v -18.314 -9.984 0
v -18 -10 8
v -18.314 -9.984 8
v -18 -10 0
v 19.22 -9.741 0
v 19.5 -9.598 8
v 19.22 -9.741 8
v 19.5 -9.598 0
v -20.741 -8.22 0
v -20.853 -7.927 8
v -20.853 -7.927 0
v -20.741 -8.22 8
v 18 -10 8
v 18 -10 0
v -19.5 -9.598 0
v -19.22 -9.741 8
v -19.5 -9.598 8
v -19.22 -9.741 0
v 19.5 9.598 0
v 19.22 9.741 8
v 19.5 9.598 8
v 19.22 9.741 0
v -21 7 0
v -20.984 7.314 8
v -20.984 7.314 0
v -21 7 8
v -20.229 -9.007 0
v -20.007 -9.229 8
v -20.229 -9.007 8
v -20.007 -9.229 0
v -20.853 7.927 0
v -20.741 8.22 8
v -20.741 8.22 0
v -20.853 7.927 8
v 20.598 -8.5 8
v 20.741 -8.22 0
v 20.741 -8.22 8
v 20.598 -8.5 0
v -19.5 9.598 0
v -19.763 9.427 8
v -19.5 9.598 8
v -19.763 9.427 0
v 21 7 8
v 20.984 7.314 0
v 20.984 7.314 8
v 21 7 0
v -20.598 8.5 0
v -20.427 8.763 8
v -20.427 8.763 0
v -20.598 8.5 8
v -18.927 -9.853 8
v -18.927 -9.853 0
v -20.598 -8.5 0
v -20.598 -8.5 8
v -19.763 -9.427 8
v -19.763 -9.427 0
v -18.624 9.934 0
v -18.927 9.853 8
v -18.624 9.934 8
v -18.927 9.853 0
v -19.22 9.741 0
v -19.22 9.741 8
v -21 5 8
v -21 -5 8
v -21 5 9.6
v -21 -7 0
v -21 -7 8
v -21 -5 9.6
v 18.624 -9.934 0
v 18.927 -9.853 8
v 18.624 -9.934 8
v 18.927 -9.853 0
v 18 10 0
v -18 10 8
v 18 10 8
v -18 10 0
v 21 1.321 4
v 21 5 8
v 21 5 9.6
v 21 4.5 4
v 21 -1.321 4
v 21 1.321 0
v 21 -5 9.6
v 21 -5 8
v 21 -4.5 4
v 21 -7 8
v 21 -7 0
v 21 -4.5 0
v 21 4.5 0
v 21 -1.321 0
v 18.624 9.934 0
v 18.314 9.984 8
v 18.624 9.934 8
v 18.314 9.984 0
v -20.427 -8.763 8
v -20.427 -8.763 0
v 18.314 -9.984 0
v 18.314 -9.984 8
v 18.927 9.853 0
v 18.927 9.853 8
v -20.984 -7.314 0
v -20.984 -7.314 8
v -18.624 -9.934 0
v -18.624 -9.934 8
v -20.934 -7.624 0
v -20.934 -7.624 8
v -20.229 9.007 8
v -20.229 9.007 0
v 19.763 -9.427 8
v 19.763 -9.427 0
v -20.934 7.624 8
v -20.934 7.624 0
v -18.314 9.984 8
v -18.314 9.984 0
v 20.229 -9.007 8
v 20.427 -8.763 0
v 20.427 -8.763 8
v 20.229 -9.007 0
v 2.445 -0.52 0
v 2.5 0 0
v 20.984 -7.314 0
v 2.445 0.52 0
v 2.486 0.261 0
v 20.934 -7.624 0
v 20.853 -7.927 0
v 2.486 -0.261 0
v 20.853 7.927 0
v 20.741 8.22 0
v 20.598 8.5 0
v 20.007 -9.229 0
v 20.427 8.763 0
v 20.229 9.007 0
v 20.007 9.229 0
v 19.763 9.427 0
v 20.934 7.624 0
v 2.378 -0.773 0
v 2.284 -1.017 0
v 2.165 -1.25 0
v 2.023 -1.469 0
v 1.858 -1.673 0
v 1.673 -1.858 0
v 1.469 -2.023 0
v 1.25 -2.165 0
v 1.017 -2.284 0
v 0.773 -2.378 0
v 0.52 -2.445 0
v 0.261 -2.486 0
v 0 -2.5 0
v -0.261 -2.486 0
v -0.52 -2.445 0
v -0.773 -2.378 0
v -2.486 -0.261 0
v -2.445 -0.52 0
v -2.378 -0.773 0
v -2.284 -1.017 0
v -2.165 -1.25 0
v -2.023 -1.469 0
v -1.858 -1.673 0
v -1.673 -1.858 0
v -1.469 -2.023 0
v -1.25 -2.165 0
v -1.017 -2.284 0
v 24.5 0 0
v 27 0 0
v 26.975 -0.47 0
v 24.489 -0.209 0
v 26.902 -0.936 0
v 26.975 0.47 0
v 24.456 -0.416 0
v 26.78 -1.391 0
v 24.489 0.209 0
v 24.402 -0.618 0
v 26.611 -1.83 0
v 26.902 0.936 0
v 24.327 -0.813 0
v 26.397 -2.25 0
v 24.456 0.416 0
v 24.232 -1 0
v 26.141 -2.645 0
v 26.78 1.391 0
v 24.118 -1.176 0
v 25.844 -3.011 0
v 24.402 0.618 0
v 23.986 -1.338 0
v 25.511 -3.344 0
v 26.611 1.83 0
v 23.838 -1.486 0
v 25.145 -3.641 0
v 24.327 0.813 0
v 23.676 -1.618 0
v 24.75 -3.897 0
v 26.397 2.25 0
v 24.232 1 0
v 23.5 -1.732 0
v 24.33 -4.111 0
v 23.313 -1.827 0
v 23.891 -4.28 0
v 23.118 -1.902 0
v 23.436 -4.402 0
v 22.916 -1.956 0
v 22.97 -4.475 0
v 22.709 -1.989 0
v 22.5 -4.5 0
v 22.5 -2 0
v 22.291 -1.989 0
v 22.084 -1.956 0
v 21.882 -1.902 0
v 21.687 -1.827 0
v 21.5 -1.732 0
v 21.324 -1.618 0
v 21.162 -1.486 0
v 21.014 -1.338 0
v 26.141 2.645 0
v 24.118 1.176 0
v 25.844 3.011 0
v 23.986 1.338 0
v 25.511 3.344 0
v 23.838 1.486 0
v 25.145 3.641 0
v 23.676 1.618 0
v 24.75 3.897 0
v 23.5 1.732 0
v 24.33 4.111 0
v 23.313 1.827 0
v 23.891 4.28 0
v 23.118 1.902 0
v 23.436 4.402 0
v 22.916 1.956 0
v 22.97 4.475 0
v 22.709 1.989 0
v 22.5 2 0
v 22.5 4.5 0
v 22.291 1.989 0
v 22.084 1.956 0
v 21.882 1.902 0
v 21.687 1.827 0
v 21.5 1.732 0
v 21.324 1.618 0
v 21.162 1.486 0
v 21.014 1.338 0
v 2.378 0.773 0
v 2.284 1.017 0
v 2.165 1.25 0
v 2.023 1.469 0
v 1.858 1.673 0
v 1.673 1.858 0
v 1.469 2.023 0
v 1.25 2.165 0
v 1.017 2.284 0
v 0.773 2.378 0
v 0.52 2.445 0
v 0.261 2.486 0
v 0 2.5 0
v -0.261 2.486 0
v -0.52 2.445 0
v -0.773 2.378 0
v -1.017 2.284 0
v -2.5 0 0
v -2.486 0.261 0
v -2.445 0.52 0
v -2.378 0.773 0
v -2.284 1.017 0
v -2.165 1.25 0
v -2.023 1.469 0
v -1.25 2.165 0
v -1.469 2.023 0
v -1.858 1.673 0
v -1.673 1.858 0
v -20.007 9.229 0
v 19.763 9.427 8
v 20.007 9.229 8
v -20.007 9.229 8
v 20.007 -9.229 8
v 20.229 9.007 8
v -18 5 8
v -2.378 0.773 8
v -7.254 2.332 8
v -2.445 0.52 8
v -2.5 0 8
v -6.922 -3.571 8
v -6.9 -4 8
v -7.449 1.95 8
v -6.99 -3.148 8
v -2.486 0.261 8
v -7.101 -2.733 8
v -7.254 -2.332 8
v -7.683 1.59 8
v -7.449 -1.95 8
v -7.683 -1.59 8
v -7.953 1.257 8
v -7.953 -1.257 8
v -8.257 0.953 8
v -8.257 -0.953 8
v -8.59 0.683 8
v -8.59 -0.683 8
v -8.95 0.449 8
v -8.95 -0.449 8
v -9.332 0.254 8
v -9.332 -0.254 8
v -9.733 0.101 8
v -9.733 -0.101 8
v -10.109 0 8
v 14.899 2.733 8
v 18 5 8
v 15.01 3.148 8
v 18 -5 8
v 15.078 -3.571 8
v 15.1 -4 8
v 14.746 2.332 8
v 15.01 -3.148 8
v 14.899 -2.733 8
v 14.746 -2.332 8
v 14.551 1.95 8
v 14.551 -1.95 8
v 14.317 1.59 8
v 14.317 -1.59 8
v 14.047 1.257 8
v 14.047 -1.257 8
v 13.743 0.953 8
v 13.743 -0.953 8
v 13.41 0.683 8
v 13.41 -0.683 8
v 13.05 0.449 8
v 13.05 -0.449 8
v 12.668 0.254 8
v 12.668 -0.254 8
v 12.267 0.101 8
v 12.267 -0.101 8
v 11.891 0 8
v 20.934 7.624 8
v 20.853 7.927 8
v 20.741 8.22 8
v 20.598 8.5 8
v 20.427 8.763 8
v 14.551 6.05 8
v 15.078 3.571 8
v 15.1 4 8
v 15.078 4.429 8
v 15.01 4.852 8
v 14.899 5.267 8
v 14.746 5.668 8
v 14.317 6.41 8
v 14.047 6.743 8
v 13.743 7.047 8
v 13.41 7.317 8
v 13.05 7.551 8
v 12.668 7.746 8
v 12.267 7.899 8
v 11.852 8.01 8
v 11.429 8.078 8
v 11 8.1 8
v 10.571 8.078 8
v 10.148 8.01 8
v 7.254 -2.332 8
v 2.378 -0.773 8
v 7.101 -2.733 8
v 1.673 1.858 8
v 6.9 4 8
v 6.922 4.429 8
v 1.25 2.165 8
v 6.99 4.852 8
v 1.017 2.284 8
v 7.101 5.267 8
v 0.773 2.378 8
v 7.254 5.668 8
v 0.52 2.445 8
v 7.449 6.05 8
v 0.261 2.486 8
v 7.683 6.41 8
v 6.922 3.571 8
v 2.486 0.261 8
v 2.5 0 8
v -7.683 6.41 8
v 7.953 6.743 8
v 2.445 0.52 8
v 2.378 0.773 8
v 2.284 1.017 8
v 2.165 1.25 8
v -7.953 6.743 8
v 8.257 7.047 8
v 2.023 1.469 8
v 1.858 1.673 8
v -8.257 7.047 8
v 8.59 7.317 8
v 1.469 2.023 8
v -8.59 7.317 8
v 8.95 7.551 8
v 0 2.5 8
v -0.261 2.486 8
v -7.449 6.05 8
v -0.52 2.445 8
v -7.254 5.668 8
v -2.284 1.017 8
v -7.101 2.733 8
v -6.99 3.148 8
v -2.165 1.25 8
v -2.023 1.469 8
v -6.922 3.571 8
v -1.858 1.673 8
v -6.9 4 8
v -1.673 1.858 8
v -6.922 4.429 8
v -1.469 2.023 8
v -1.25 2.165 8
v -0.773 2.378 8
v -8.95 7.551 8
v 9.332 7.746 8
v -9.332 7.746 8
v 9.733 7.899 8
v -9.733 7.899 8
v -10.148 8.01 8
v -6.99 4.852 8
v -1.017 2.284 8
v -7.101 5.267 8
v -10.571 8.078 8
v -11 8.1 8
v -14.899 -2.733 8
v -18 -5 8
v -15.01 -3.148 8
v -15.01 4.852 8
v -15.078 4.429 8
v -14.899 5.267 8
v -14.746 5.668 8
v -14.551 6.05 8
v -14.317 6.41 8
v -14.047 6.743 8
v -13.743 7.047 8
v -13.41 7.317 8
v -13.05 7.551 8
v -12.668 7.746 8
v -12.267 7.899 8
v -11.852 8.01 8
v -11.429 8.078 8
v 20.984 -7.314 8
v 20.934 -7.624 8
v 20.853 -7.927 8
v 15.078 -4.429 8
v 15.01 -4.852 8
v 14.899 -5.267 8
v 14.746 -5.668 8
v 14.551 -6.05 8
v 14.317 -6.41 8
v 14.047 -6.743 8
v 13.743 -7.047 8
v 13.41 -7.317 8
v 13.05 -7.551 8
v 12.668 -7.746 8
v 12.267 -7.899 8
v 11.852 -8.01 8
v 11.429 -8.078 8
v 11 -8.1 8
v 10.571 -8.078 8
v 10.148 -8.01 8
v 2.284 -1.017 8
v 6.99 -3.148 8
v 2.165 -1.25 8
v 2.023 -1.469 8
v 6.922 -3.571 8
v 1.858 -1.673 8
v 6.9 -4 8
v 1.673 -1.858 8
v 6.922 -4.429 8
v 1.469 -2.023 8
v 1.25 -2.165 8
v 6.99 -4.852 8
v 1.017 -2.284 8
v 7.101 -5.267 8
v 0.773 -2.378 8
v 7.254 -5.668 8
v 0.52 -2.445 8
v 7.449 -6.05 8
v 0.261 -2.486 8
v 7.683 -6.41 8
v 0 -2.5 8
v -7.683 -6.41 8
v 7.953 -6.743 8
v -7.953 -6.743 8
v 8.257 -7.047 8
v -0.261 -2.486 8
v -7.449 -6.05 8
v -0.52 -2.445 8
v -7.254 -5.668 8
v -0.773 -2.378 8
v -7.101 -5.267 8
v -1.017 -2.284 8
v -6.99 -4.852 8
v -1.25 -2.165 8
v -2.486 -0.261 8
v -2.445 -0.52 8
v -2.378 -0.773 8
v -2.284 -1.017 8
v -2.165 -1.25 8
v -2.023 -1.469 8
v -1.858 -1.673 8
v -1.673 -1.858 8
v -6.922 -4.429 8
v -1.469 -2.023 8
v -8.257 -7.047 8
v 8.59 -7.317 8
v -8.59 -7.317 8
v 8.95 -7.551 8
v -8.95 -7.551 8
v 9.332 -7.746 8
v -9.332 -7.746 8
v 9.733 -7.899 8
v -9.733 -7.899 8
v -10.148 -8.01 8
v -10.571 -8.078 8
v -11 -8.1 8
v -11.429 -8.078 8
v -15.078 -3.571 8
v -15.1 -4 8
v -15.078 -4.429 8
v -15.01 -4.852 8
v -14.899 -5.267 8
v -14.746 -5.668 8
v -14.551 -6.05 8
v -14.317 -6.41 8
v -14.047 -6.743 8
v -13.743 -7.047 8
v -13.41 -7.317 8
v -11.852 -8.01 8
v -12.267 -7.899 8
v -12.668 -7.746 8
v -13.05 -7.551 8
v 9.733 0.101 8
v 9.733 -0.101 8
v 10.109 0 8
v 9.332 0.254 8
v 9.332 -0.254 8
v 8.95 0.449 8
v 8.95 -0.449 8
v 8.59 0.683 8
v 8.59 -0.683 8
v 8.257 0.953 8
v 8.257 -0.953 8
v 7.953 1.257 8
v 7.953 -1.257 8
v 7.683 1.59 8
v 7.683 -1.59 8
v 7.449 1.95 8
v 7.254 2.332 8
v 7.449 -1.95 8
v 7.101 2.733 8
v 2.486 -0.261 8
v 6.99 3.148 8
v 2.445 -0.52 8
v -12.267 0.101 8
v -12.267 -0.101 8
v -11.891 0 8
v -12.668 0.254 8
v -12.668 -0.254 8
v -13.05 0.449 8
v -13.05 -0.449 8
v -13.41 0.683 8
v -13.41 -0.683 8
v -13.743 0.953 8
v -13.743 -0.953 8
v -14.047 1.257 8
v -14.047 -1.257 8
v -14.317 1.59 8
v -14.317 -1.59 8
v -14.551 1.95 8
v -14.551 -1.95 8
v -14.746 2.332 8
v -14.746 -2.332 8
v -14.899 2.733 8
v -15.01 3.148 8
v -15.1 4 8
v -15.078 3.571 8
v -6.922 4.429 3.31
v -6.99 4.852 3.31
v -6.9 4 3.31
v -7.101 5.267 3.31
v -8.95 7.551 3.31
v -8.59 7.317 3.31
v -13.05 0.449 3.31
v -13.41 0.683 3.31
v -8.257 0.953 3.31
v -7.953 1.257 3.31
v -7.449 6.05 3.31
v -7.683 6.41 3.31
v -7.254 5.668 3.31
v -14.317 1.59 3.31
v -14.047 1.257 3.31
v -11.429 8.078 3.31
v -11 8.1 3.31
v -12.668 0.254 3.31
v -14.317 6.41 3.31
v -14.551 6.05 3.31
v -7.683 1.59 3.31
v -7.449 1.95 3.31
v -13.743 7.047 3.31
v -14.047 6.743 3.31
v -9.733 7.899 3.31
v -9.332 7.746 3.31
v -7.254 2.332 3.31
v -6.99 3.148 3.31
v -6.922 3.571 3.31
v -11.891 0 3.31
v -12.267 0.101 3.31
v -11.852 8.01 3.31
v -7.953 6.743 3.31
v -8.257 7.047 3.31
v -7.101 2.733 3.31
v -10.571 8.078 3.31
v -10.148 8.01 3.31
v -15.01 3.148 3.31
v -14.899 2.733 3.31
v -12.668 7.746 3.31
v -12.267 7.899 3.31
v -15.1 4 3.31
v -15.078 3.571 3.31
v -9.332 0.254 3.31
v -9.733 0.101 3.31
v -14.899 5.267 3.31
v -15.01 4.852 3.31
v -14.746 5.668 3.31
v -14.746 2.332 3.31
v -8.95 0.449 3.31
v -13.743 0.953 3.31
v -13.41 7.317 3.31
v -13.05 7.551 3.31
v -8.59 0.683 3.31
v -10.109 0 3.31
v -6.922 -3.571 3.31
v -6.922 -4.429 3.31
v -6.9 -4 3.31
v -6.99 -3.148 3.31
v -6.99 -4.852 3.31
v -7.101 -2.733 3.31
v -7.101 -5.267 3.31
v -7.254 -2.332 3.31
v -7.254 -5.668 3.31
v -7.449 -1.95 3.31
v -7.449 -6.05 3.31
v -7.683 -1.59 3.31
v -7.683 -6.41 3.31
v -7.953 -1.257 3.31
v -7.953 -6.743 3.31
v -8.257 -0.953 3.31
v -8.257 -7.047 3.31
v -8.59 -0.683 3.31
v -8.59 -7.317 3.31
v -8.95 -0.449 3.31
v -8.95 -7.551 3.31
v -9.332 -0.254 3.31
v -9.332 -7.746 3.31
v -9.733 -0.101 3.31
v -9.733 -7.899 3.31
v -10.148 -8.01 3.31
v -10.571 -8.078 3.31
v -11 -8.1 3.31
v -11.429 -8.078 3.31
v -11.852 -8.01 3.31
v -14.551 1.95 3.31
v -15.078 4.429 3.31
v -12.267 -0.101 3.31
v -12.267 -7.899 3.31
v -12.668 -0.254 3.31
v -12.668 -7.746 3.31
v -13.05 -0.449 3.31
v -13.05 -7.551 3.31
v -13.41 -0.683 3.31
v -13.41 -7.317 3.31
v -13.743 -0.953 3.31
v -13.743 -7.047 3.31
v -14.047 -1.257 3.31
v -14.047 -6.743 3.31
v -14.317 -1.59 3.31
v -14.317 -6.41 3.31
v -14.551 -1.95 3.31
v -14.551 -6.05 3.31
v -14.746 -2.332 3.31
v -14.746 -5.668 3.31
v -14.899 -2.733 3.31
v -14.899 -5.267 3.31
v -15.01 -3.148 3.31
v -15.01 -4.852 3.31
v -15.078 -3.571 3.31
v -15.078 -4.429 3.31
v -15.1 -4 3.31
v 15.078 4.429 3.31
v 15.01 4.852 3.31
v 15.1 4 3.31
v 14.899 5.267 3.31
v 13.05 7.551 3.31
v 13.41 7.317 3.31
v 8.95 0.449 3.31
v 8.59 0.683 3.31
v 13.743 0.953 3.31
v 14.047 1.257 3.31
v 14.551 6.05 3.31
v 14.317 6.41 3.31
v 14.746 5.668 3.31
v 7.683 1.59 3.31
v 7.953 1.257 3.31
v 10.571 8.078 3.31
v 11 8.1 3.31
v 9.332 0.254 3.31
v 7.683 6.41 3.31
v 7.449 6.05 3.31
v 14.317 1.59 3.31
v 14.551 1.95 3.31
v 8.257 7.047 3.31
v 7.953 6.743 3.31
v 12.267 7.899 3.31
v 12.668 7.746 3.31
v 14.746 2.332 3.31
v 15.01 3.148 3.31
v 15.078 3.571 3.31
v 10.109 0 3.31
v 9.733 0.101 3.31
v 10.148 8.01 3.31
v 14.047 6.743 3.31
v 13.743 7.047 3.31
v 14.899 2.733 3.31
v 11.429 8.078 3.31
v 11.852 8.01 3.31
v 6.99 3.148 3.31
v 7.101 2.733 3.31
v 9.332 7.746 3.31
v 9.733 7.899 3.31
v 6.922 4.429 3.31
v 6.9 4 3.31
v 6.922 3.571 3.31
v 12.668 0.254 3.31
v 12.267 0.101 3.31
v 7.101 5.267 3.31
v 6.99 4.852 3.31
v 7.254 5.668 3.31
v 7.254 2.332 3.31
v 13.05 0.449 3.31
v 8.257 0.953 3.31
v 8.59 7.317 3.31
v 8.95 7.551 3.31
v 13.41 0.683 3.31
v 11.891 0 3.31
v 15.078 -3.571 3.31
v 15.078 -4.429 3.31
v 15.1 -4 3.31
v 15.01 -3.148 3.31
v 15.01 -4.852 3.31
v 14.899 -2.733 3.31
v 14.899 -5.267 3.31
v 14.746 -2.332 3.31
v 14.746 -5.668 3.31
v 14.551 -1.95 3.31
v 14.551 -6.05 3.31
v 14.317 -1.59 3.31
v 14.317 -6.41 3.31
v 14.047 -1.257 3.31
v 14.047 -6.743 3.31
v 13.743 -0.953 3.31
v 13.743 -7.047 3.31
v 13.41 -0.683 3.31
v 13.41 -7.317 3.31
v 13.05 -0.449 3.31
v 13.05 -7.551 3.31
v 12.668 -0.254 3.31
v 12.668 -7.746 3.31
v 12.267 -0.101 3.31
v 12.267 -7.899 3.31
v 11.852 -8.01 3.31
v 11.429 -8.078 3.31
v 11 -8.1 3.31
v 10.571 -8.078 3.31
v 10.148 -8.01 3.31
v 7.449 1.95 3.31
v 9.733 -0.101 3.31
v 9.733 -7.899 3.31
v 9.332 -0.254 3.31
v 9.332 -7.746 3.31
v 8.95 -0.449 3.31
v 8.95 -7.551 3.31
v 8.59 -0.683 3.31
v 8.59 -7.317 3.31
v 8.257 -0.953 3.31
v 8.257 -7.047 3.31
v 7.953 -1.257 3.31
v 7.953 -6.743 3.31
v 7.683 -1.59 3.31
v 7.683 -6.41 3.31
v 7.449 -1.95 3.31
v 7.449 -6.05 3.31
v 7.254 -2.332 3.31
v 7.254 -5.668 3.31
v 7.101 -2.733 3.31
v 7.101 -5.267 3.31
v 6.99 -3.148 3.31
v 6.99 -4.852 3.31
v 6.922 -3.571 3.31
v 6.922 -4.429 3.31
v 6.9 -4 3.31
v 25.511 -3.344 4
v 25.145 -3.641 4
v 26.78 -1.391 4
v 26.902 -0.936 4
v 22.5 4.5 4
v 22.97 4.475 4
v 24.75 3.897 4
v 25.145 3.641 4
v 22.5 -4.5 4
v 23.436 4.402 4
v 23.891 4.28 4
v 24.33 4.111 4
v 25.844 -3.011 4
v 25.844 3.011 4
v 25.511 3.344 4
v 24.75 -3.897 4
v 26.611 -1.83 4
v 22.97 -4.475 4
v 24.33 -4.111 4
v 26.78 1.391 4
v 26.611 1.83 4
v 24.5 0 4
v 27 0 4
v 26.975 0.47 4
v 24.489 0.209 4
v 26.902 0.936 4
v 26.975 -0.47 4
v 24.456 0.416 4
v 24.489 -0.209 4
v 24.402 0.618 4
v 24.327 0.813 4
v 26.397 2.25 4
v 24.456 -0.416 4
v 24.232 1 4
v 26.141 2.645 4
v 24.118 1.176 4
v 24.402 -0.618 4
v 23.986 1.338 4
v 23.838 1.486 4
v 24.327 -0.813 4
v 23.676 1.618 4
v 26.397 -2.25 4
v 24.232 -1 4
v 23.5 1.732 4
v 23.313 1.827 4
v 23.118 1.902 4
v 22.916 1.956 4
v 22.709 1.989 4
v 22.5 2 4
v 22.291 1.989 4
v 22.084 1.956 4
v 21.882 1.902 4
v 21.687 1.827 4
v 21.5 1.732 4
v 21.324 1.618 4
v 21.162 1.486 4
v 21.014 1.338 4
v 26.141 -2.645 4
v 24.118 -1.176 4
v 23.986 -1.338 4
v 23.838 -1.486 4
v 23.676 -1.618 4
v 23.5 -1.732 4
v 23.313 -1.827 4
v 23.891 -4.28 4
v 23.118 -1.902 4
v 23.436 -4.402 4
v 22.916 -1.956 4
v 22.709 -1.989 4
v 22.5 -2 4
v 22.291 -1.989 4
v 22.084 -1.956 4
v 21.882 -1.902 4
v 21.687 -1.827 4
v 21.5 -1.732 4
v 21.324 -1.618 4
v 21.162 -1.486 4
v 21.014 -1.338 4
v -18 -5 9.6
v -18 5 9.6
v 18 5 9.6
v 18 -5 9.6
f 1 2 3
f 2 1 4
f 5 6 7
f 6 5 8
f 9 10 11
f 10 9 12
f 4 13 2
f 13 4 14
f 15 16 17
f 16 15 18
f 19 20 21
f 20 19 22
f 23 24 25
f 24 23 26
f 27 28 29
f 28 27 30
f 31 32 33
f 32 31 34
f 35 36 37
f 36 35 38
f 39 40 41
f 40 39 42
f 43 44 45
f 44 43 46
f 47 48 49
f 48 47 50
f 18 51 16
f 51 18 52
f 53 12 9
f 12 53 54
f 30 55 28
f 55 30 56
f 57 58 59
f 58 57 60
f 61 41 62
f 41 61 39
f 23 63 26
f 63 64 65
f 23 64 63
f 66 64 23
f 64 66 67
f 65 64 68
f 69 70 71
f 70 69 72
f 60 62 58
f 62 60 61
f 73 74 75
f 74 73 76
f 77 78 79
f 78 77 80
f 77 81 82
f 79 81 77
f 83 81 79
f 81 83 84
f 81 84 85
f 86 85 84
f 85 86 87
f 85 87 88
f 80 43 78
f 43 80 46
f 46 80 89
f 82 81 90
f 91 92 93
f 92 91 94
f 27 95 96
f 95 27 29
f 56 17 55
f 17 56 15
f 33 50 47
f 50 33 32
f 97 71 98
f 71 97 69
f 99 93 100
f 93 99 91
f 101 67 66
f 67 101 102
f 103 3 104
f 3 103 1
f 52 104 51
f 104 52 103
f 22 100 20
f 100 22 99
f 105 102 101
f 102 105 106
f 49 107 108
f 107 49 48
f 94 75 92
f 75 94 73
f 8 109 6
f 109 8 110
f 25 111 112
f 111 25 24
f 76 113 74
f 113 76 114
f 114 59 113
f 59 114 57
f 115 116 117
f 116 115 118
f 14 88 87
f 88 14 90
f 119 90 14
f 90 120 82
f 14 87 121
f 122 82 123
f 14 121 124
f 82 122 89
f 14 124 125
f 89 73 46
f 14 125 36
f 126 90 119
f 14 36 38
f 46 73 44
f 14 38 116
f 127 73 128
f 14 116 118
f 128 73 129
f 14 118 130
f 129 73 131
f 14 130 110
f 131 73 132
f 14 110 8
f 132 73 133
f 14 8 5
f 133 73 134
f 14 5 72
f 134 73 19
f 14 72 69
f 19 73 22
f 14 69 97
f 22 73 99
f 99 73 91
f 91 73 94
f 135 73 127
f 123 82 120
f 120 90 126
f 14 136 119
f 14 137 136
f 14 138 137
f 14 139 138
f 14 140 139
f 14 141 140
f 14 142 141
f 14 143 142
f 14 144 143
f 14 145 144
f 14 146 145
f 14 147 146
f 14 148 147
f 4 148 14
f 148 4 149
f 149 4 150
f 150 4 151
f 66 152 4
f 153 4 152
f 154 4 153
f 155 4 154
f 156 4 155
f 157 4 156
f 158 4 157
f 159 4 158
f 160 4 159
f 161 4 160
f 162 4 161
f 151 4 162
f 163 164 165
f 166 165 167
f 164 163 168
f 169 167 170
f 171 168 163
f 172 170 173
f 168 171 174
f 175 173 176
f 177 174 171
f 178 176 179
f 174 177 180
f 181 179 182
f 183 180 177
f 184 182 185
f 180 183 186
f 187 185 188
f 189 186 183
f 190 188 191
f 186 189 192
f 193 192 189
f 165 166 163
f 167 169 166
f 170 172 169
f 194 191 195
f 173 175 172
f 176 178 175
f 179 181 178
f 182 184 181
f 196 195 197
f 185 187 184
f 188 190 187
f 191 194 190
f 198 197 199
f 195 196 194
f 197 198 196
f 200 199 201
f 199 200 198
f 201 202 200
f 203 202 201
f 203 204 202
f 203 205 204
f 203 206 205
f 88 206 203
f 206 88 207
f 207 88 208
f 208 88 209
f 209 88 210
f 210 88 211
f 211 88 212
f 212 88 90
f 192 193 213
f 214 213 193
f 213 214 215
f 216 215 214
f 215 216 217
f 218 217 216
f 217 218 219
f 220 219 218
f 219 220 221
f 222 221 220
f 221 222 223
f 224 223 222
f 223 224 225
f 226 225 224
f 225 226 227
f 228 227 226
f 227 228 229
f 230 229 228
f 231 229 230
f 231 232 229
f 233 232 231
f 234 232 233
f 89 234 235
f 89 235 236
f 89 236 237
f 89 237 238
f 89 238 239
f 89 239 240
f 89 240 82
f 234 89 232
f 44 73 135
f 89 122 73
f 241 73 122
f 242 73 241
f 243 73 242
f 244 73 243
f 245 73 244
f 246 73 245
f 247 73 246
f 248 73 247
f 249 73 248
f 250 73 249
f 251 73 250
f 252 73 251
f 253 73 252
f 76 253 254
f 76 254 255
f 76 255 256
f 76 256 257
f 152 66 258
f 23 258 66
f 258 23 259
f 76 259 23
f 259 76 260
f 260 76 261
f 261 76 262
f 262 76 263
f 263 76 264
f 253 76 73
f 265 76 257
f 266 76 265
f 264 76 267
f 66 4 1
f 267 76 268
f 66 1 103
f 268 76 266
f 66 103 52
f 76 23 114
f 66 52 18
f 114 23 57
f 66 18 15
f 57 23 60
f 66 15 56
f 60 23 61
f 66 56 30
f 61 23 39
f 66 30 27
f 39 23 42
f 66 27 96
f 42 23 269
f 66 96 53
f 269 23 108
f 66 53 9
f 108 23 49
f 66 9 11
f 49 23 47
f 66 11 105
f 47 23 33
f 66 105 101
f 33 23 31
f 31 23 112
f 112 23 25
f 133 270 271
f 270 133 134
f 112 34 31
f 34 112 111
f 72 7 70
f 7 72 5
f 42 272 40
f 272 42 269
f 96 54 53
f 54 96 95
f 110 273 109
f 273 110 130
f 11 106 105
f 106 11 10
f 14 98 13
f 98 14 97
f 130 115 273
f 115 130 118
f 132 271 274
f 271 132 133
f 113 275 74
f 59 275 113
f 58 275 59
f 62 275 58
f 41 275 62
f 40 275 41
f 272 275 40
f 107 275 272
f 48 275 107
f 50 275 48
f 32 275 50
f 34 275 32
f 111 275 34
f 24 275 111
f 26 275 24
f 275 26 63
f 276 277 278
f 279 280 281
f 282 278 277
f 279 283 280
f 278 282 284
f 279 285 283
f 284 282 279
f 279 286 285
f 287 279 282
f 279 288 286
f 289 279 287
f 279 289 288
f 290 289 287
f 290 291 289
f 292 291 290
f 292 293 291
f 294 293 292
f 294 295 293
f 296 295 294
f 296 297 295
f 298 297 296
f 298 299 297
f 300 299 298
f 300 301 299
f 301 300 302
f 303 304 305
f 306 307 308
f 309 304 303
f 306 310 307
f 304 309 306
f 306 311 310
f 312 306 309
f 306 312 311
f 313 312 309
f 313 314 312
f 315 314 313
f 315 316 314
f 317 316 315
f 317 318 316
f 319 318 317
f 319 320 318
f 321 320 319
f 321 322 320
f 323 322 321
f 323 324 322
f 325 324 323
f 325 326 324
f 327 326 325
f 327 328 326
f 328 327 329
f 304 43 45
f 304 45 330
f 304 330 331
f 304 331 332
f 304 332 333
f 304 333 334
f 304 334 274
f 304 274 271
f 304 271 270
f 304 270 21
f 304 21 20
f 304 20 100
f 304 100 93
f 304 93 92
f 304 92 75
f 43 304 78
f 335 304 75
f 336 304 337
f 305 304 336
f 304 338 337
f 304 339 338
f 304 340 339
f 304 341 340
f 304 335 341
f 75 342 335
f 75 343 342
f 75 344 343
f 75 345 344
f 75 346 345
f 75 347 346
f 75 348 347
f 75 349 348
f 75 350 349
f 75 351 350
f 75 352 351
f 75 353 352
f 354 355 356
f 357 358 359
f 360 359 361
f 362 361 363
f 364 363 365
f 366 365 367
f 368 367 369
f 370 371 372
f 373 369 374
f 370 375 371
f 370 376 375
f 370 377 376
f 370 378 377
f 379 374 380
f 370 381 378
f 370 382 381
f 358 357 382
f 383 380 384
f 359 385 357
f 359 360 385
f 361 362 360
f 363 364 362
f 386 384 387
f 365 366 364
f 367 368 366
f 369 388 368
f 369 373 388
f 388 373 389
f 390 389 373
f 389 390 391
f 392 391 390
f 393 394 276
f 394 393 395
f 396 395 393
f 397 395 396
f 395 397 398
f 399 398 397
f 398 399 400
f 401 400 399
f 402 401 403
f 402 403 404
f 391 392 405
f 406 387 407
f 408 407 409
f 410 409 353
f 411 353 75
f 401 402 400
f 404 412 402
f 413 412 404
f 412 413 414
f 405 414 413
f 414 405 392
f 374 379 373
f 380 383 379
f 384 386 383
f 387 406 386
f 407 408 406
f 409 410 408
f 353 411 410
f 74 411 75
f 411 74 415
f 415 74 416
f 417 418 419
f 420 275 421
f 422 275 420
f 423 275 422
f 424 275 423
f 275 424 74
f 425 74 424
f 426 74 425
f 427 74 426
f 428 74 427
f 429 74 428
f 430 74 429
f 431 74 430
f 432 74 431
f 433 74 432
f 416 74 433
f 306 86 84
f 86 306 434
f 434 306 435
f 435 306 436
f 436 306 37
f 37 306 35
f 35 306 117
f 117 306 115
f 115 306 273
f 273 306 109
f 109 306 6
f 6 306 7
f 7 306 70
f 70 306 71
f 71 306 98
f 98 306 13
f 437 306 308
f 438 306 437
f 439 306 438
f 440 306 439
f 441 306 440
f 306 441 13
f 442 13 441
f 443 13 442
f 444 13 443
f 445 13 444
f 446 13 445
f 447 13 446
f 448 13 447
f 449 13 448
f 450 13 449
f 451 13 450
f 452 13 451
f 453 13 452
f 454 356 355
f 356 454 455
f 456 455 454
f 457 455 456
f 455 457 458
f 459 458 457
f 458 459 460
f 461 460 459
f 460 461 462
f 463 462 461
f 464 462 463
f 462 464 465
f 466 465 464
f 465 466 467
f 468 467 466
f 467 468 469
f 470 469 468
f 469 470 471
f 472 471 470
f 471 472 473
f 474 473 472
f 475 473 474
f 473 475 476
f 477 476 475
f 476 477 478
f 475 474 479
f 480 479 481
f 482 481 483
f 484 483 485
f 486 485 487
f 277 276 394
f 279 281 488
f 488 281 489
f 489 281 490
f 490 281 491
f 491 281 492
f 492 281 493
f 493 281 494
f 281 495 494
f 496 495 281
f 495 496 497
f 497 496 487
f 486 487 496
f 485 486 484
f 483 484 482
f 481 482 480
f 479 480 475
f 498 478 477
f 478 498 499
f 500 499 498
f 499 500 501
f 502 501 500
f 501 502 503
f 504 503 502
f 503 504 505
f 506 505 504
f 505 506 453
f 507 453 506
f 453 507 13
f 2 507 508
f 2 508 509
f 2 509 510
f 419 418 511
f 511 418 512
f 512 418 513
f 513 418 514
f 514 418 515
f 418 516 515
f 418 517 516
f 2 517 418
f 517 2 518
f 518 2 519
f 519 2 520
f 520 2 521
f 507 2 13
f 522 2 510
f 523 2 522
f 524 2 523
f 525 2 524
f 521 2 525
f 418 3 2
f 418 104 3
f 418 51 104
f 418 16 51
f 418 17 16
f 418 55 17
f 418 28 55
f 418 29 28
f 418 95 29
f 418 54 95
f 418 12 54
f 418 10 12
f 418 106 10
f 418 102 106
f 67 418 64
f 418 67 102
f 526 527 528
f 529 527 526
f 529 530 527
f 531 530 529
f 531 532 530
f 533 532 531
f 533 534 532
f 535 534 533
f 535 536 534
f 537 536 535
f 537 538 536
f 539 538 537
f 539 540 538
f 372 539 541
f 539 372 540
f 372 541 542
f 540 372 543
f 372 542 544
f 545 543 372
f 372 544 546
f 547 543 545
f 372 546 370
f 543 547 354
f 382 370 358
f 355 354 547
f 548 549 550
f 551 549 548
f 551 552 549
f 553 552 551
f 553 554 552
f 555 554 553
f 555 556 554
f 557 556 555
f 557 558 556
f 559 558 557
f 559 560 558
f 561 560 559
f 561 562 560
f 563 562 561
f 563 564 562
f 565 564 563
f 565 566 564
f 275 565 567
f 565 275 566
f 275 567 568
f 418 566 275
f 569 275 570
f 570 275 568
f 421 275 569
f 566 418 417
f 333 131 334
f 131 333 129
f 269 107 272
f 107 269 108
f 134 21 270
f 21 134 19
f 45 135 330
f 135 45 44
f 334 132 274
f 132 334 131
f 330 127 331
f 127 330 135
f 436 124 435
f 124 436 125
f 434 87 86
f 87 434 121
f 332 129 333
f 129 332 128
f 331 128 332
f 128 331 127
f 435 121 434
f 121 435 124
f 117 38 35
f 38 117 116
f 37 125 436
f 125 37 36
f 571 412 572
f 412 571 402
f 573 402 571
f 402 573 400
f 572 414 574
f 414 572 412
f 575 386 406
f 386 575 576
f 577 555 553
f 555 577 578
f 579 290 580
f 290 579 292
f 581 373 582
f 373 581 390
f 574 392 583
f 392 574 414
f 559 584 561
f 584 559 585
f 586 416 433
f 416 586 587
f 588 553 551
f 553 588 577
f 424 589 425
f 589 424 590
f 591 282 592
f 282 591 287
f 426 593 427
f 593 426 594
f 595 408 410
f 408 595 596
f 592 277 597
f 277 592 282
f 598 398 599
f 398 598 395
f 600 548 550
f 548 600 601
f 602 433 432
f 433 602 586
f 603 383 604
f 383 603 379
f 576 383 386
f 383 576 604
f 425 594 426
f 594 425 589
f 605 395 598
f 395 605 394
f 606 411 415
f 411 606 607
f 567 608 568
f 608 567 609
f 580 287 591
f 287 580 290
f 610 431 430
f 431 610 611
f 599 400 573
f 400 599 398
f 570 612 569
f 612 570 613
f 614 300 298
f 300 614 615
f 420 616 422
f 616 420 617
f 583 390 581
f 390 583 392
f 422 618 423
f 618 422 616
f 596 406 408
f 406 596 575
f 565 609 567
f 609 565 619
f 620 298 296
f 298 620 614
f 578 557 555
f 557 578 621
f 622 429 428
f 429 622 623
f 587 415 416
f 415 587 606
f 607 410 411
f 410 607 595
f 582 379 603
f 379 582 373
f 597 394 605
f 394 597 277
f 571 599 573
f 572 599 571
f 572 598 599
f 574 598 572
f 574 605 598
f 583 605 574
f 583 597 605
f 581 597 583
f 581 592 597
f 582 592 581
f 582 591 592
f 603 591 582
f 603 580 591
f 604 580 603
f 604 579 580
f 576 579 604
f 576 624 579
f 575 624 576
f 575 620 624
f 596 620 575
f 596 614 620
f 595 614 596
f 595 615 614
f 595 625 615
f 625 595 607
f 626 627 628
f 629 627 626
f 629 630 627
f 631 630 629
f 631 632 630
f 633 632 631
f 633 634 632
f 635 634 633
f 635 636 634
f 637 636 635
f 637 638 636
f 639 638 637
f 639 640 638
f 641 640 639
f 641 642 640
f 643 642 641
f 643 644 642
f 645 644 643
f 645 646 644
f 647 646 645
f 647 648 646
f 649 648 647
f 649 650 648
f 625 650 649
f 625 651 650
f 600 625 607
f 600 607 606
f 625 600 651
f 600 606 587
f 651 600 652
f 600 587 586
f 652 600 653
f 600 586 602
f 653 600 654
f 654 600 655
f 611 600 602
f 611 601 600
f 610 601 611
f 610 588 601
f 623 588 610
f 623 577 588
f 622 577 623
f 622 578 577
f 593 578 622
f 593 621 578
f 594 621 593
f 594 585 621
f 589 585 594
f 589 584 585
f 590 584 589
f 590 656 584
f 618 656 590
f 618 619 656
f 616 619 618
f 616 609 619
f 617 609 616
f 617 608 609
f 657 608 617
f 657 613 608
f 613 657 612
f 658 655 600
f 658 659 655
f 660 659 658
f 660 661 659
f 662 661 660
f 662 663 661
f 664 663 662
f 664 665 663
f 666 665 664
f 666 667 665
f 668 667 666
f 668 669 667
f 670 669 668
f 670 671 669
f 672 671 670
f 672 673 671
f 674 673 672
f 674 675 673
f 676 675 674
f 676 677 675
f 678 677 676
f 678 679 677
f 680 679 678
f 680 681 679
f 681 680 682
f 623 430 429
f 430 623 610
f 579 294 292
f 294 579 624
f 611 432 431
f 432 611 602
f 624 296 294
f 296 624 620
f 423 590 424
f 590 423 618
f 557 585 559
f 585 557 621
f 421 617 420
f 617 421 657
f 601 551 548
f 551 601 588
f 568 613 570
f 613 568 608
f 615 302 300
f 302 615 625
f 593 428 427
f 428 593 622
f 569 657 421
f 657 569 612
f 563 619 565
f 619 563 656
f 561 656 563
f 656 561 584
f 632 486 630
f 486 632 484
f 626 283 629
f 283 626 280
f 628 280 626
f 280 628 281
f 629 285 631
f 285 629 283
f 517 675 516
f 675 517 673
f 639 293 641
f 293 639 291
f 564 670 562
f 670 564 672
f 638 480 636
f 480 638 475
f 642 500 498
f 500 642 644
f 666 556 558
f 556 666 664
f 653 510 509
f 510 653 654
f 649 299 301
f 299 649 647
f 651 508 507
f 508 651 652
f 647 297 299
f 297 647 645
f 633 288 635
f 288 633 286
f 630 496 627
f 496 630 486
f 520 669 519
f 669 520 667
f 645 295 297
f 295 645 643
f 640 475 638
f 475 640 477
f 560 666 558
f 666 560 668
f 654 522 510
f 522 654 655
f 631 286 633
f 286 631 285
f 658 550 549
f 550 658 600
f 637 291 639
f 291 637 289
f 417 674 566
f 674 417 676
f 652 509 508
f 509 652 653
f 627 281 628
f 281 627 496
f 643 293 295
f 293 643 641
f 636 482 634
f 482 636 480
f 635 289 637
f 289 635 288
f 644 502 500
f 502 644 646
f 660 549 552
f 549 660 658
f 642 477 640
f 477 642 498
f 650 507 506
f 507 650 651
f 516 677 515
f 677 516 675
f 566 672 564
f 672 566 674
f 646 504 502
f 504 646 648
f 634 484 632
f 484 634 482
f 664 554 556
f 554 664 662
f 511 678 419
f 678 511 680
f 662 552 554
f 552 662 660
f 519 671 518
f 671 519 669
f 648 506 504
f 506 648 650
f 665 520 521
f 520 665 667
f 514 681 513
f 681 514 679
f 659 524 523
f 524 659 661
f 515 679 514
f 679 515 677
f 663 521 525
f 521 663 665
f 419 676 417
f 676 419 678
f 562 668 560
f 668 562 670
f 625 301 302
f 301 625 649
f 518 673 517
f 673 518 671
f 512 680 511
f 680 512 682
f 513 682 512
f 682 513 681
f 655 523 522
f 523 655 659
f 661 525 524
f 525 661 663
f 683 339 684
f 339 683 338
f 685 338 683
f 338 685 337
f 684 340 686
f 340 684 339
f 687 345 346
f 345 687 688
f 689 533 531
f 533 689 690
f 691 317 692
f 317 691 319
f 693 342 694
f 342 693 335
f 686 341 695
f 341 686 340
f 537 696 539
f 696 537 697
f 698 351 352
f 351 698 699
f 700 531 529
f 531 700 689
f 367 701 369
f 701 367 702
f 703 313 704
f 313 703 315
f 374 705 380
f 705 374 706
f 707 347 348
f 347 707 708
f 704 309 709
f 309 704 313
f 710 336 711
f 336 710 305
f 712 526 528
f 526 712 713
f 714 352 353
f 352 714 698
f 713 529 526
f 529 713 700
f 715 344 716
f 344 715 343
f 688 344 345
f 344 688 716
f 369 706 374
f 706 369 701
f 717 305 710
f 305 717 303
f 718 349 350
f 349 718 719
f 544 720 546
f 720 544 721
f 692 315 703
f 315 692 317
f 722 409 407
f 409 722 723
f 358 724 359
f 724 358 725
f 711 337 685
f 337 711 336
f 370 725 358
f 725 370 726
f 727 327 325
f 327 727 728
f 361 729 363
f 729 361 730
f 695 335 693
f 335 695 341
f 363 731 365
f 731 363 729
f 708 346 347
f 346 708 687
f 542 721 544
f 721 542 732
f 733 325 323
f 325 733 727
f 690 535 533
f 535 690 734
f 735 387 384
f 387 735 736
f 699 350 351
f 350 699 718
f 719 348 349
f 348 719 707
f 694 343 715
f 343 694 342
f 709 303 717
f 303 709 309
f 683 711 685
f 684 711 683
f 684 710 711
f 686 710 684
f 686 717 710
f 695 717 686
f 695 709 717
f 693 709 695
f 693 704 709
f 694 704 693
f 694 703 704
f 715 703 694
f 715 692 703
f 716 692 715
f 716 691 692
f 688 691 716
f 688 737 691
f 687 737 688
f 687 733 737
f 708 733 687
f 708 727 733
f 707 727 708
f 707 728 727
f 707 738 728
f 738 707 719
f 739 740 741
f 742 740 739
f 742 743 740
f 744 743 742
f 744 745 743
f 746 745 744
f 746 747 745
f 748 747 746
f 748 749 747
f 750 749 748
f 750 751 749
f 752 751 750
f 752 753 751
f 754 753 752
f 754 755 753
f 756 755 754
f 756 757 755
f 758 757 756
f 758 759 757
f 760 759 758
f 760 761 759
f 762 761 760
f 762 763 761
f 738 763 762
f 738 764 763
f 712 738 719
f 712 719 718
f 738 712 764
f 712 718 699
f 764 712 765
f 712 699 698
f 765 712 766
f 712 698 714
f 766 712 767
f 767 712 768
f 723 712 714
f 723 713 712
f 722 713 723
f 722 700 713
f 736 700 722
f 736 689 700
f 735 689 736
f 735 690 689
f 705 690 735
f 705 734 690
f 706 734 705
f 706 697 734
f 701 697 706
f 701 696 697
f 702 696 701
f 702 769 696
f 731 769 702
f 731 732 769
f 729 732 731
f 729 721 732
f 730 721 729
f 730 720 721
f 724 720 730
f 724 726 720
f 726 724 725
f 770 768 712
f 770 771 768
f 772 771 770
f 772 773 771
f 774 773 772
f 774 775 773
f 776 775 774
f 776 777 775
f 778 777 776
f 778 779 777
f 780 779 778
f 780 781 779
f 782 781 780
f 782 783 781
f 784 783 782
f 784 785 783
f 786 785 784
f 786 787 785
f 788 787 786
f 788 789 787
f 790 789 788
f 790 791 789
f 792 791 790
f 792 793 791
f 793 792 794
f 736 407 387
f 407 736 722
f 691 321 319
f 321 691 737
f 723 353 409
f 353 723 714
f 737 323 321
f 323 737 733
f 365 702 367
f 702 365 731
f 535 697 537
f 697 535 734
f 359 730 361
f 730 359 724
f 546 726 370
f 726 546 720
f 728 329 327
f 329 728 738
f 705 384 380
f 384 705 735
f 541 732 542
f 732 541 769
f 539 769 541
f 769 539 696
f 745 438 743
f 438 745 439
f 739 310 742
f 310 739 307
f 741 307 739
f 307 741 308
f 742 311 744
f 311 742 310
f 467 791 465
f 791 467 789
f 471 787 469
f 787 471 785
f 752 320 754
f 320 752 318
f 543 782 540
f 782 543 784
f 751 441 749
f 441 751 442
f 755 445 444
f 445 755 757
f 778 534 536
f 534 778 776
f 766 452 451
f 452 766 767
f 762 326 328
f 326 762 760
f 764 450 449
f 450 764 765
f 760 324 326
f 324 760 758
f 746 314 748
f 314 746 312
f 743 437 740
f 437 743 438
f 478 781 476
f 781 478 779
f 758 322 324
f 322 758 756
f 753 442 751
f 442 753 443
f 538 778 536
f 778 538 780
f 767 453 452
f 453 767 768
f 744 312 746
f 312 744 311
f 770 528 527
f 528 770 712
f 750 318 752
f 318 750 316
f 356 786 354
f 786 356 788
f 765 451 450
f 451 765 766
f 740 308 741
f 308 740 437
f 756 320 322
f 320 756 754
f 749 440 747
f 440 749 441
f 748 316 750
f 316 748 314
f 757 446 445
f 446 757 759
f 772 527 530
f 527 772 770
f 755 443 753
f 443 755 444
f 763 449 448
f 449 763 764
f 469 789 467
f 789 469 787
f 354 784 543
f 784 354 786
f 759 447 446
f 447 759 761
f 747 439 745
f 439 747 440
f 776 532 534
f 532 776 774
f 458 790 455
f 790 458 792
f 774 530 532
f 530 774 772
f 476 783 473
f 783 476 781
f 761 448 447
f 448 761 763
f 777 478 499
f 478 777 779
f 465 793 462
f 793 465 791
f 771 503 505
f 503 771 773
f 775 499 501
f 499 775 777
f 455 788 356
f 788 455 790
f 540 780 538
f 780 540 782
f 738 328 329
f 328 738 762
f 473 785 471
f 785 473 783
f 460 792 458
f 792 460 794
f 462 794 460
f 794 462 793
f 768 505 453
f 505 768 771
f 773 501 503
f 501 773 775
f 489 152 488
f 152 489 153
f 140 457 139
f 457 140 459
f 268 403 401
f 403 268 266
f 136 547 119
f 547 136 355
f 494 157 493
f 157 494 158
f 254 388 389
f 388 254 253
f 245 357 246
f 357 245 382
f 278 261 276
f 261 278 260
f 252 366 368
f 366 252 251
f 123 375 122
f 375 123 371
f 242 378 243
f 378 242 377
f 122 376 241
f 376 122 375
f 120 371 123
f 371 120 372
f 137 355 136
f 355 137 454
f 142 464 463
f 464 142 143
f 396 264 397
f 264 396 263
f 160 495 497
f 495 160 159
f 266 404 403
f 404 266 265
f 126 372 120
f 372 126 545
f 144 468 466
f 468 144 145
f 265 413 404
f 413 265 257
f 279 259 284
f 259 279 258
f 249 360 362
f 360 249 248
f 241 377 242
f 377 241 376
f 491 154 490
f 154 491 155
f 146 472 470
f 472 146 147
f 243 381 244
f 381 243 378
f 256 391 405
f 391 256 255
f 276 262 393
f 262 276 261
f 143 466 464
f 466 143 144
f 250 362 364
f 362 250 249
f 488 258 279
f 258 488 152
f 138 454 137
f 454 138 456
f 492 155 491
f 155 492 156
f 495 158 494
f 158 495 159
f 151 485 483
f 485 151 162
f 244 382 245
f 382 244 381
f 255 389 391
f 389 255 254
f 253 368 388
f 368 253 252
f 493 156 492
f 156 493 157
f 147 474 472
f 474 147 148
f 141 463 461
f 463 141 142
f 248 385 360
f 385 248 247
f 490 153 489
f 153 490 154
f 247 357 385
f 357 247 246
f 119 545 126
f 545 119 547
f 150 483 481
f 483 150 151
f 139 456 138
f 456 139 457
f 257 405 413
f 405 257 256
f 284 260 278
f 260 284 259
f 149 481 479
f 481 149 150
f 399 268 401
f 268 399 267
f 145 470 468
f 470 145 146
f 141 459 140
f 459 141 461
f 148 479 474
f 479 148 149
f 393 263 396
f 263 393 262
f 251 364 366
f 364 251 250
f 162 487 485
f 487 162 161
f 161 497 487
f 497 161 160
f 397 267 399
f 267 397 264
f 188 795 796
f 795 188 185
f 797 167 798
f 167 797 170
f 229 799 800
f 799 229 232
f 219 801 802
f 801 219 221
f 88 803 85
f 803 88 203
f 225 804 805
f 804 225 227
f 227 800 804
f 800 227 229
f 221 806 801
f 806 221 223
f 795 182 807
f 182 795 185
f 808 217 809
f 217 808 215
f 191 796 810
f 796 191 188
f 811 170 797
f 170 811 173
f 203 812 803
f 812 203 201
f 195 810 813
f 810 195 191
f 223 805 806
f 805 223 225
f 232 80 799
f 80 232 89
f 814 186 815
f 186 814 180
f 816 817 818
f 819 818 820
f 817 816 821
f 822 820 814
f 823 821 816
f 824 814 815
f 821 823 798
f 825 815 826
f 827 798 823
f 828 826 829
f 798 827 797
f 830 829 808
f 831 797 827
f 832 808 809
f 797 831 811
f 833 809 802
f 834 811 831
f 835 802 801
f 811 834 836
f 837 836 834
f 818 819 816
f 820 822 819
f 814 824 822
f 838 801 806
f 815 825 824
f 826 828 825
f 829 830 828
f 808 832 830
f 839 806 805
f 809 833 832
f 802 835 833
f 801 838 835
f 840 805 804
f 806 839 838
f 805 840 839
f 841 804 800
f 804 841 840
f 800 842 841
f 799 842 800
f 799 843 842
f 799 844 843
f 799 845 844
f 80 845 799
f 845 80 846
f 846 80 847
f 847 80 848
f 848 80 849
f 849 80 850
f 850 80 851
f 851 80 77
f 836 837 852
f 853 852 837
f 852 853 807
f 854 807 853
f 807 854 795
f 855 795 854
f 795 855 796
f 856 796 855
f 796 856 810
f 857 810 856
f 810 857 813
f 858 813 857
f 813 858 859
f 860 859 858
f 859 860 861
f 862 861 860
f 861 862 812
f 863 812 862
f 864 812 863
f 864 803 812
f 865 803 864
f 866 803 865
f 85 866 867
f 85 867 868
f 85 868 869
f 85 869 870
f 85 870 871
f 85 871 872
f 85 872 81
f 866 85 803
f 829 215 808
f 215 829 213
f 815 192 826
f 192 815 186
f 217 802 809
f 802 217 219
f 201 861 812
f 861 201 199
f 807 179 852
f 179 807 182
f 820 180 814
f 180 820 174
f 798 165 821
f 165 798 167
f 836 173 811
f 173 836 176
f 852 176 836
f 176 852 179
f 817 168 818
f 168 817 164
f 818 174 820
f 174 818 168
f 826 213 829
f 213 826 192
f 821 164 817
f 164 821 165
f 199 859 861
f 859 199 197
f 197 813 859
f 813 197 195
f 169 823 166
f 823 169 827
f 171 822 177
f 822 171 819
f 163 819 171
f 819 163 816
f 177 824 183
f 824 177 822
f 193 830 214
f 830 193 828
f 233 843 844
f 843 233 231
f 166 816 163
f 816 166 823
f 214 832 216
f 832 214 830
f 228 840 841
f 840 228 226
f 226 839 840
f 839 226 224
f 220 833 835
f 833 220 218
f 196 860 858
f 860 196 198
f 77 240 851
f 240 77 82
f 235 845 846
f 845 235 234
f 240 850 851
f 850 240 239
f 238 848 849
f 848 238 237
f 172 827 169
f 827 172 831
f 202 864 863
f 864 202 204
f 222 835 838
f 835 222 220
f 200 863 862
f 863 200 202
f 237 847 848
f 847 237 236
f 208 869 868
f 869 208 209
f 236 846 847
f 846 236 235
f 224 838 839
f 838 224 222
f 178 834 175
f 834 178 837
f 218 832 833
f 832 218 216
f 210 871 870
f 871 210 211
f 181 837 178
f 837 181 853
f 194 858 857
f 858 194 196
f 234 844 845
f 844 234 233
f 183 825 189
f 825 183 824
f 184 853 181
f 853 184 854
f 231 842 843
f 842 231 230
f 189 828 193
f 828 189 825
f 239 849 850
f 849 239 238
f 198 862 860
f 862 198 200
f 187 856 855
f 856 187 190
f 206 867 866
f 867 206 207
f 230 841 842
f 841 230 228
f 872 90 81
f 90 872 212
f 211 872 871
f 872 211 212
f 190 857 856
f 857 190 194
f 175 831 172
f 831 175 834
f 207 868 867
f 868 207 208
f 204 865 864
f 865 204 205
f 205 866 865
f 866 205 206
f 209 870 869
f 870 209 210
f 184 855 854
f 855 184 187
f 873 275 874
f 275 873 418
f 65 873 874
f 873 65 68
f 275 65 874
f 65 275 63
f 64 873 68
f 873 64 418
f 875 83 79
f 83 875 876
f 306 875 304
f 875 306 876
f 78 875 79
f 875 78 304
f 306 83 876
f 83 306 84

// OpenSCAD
// Magnetický držák pro DJI Osmo Action (Konfigurace: 2x dvojice magnetů)
// Rozteč středů dvojic: 22mm. Magnety těsně u sebe. 
// Očko na KRATŠÍ straně - OPRAVENÁ ORIENTACE OTVORU (svisle, bez podpěr).

$fn = 60; // Vyhlazení oblouků

// --- PARAMETRY ---
base_width = 42;       // Celková šířka bloku (delší strana)
base_length = 20;      // Celková délka bloku (kratší strana)
base_height = 8;       // Výška bloku (pro 4.6mm hluboké magnety)

// Rozměry magnetů + tolerance pro tisk
mag_diam = 8.0 + 0.2;  // Průměr otvoru s vůlí
mag_depth = 4.6 + 0.1; // Hloubka otvoru s vůlí
mag_r = mag_diam / 2;

// --- GEOMETRIE POZIC MAGNETŮ ---
pair_distance = 22;    // Rozteč středů levé a pravé dvojice magnetů
intra_pair_offset = mag_r - 0.1; // Posun od středu dvojice, aby byly magnety těsně u sebe

// --- HLAVNÍ SESTAVA ---
union() {
    difference() {
        // Základní kostka se zaoblenými rohy
        main_body();
        
        // LEVÁ DVOJICE MAGNETŮ
        translate([-pair_distance/2,  intra_pair_offset, base_height - mag_depth + 0.01]) cylinder(r=mag_r, h=mag_depth);
        translate([-pair_distance/2, -intra_pair_offset, base_height - mag_depth + 0.01]) cylinder(r=mag_r, h=mag_depth);
        
        // PRAVÁ DVOJICE MAGNETŮ
        translate([ pair_distance/2,  intra_pair_offset, base_height - mag_depth + 0.01]) cylinder(r=mag_r, h=mag_depth);
        translate([ pair_distance/2, -intra_pair_offset, base_height - mag_depth + 0.01]) cylinder(r=mag_r, h=mag_depth);
        translate([0, 0, -1]) cylinder(r=2.5 ,h=10);
    }
    
    translate([-36/2-3, -5, 2])cube([3, 10, 7.6]);
    translate([36/2, -5, +2])cube([3, 10, 7.6]);
        
    
    // Očko na poutko – napoziciováno ven z pravé KRATŠÍ stěny.
    // Díra je teď orientována svisle.
    translate([base_width/2, 0, 0]) eyelet();
}

// --- MODULY ---

module main_body() {
    corner_r = 3; // Poloměr zaoblení rohů
    w = base_width / 2 - corner_r;
    l = base_length / 2 - corner_r;
    
    hull() {
        translate([ w,  l, 0]) cylinder(r=corner_r, h=base_height);
        translate([-w,  l, 0]) cylinder(r=corner_r, h=base_height);
        translate([ w, -l, 0]) cylinder(r=corner_r, h=base_height);
        translate([-w, -l, 0]) cylinder(r=corner_r, h=base_height);
    }
}

module eyelet() {
    // Definujeme vodorovné očko se svislou dírou
    eye_inner = 2.0;   // Vnitřní poloměr (pro 4mm šňůrku)
    eye_thickness = 4.0; // Celková tloušťka očka
    outer_w = 6.0;    // Šířka očka ven z modelu
    outer_l = 9.0;     // Délka očka podél stěny

    difference() {
        // Vnější zaoblený blok očka, který se zaboří do stěny
        hull() {
            // Vnější válec, kde bude díra
            translate([outer_w - outer_l/2, 0, 0]) cylinder(d=outer_l, h=eye_thickness);
            // Plochá část zabořená do stěny
            translate([-0.01, -outer_l/2, 0]) cube([1.0, outer_l, eye_thickness]);
        }
        // Svislý otvor pro poutko – prochází celým očkem
        translate([outer_w - outer_l/2, 0, -1]) cylinder(r=eye_inner, h=eye_thickness + 2);
    }
}
